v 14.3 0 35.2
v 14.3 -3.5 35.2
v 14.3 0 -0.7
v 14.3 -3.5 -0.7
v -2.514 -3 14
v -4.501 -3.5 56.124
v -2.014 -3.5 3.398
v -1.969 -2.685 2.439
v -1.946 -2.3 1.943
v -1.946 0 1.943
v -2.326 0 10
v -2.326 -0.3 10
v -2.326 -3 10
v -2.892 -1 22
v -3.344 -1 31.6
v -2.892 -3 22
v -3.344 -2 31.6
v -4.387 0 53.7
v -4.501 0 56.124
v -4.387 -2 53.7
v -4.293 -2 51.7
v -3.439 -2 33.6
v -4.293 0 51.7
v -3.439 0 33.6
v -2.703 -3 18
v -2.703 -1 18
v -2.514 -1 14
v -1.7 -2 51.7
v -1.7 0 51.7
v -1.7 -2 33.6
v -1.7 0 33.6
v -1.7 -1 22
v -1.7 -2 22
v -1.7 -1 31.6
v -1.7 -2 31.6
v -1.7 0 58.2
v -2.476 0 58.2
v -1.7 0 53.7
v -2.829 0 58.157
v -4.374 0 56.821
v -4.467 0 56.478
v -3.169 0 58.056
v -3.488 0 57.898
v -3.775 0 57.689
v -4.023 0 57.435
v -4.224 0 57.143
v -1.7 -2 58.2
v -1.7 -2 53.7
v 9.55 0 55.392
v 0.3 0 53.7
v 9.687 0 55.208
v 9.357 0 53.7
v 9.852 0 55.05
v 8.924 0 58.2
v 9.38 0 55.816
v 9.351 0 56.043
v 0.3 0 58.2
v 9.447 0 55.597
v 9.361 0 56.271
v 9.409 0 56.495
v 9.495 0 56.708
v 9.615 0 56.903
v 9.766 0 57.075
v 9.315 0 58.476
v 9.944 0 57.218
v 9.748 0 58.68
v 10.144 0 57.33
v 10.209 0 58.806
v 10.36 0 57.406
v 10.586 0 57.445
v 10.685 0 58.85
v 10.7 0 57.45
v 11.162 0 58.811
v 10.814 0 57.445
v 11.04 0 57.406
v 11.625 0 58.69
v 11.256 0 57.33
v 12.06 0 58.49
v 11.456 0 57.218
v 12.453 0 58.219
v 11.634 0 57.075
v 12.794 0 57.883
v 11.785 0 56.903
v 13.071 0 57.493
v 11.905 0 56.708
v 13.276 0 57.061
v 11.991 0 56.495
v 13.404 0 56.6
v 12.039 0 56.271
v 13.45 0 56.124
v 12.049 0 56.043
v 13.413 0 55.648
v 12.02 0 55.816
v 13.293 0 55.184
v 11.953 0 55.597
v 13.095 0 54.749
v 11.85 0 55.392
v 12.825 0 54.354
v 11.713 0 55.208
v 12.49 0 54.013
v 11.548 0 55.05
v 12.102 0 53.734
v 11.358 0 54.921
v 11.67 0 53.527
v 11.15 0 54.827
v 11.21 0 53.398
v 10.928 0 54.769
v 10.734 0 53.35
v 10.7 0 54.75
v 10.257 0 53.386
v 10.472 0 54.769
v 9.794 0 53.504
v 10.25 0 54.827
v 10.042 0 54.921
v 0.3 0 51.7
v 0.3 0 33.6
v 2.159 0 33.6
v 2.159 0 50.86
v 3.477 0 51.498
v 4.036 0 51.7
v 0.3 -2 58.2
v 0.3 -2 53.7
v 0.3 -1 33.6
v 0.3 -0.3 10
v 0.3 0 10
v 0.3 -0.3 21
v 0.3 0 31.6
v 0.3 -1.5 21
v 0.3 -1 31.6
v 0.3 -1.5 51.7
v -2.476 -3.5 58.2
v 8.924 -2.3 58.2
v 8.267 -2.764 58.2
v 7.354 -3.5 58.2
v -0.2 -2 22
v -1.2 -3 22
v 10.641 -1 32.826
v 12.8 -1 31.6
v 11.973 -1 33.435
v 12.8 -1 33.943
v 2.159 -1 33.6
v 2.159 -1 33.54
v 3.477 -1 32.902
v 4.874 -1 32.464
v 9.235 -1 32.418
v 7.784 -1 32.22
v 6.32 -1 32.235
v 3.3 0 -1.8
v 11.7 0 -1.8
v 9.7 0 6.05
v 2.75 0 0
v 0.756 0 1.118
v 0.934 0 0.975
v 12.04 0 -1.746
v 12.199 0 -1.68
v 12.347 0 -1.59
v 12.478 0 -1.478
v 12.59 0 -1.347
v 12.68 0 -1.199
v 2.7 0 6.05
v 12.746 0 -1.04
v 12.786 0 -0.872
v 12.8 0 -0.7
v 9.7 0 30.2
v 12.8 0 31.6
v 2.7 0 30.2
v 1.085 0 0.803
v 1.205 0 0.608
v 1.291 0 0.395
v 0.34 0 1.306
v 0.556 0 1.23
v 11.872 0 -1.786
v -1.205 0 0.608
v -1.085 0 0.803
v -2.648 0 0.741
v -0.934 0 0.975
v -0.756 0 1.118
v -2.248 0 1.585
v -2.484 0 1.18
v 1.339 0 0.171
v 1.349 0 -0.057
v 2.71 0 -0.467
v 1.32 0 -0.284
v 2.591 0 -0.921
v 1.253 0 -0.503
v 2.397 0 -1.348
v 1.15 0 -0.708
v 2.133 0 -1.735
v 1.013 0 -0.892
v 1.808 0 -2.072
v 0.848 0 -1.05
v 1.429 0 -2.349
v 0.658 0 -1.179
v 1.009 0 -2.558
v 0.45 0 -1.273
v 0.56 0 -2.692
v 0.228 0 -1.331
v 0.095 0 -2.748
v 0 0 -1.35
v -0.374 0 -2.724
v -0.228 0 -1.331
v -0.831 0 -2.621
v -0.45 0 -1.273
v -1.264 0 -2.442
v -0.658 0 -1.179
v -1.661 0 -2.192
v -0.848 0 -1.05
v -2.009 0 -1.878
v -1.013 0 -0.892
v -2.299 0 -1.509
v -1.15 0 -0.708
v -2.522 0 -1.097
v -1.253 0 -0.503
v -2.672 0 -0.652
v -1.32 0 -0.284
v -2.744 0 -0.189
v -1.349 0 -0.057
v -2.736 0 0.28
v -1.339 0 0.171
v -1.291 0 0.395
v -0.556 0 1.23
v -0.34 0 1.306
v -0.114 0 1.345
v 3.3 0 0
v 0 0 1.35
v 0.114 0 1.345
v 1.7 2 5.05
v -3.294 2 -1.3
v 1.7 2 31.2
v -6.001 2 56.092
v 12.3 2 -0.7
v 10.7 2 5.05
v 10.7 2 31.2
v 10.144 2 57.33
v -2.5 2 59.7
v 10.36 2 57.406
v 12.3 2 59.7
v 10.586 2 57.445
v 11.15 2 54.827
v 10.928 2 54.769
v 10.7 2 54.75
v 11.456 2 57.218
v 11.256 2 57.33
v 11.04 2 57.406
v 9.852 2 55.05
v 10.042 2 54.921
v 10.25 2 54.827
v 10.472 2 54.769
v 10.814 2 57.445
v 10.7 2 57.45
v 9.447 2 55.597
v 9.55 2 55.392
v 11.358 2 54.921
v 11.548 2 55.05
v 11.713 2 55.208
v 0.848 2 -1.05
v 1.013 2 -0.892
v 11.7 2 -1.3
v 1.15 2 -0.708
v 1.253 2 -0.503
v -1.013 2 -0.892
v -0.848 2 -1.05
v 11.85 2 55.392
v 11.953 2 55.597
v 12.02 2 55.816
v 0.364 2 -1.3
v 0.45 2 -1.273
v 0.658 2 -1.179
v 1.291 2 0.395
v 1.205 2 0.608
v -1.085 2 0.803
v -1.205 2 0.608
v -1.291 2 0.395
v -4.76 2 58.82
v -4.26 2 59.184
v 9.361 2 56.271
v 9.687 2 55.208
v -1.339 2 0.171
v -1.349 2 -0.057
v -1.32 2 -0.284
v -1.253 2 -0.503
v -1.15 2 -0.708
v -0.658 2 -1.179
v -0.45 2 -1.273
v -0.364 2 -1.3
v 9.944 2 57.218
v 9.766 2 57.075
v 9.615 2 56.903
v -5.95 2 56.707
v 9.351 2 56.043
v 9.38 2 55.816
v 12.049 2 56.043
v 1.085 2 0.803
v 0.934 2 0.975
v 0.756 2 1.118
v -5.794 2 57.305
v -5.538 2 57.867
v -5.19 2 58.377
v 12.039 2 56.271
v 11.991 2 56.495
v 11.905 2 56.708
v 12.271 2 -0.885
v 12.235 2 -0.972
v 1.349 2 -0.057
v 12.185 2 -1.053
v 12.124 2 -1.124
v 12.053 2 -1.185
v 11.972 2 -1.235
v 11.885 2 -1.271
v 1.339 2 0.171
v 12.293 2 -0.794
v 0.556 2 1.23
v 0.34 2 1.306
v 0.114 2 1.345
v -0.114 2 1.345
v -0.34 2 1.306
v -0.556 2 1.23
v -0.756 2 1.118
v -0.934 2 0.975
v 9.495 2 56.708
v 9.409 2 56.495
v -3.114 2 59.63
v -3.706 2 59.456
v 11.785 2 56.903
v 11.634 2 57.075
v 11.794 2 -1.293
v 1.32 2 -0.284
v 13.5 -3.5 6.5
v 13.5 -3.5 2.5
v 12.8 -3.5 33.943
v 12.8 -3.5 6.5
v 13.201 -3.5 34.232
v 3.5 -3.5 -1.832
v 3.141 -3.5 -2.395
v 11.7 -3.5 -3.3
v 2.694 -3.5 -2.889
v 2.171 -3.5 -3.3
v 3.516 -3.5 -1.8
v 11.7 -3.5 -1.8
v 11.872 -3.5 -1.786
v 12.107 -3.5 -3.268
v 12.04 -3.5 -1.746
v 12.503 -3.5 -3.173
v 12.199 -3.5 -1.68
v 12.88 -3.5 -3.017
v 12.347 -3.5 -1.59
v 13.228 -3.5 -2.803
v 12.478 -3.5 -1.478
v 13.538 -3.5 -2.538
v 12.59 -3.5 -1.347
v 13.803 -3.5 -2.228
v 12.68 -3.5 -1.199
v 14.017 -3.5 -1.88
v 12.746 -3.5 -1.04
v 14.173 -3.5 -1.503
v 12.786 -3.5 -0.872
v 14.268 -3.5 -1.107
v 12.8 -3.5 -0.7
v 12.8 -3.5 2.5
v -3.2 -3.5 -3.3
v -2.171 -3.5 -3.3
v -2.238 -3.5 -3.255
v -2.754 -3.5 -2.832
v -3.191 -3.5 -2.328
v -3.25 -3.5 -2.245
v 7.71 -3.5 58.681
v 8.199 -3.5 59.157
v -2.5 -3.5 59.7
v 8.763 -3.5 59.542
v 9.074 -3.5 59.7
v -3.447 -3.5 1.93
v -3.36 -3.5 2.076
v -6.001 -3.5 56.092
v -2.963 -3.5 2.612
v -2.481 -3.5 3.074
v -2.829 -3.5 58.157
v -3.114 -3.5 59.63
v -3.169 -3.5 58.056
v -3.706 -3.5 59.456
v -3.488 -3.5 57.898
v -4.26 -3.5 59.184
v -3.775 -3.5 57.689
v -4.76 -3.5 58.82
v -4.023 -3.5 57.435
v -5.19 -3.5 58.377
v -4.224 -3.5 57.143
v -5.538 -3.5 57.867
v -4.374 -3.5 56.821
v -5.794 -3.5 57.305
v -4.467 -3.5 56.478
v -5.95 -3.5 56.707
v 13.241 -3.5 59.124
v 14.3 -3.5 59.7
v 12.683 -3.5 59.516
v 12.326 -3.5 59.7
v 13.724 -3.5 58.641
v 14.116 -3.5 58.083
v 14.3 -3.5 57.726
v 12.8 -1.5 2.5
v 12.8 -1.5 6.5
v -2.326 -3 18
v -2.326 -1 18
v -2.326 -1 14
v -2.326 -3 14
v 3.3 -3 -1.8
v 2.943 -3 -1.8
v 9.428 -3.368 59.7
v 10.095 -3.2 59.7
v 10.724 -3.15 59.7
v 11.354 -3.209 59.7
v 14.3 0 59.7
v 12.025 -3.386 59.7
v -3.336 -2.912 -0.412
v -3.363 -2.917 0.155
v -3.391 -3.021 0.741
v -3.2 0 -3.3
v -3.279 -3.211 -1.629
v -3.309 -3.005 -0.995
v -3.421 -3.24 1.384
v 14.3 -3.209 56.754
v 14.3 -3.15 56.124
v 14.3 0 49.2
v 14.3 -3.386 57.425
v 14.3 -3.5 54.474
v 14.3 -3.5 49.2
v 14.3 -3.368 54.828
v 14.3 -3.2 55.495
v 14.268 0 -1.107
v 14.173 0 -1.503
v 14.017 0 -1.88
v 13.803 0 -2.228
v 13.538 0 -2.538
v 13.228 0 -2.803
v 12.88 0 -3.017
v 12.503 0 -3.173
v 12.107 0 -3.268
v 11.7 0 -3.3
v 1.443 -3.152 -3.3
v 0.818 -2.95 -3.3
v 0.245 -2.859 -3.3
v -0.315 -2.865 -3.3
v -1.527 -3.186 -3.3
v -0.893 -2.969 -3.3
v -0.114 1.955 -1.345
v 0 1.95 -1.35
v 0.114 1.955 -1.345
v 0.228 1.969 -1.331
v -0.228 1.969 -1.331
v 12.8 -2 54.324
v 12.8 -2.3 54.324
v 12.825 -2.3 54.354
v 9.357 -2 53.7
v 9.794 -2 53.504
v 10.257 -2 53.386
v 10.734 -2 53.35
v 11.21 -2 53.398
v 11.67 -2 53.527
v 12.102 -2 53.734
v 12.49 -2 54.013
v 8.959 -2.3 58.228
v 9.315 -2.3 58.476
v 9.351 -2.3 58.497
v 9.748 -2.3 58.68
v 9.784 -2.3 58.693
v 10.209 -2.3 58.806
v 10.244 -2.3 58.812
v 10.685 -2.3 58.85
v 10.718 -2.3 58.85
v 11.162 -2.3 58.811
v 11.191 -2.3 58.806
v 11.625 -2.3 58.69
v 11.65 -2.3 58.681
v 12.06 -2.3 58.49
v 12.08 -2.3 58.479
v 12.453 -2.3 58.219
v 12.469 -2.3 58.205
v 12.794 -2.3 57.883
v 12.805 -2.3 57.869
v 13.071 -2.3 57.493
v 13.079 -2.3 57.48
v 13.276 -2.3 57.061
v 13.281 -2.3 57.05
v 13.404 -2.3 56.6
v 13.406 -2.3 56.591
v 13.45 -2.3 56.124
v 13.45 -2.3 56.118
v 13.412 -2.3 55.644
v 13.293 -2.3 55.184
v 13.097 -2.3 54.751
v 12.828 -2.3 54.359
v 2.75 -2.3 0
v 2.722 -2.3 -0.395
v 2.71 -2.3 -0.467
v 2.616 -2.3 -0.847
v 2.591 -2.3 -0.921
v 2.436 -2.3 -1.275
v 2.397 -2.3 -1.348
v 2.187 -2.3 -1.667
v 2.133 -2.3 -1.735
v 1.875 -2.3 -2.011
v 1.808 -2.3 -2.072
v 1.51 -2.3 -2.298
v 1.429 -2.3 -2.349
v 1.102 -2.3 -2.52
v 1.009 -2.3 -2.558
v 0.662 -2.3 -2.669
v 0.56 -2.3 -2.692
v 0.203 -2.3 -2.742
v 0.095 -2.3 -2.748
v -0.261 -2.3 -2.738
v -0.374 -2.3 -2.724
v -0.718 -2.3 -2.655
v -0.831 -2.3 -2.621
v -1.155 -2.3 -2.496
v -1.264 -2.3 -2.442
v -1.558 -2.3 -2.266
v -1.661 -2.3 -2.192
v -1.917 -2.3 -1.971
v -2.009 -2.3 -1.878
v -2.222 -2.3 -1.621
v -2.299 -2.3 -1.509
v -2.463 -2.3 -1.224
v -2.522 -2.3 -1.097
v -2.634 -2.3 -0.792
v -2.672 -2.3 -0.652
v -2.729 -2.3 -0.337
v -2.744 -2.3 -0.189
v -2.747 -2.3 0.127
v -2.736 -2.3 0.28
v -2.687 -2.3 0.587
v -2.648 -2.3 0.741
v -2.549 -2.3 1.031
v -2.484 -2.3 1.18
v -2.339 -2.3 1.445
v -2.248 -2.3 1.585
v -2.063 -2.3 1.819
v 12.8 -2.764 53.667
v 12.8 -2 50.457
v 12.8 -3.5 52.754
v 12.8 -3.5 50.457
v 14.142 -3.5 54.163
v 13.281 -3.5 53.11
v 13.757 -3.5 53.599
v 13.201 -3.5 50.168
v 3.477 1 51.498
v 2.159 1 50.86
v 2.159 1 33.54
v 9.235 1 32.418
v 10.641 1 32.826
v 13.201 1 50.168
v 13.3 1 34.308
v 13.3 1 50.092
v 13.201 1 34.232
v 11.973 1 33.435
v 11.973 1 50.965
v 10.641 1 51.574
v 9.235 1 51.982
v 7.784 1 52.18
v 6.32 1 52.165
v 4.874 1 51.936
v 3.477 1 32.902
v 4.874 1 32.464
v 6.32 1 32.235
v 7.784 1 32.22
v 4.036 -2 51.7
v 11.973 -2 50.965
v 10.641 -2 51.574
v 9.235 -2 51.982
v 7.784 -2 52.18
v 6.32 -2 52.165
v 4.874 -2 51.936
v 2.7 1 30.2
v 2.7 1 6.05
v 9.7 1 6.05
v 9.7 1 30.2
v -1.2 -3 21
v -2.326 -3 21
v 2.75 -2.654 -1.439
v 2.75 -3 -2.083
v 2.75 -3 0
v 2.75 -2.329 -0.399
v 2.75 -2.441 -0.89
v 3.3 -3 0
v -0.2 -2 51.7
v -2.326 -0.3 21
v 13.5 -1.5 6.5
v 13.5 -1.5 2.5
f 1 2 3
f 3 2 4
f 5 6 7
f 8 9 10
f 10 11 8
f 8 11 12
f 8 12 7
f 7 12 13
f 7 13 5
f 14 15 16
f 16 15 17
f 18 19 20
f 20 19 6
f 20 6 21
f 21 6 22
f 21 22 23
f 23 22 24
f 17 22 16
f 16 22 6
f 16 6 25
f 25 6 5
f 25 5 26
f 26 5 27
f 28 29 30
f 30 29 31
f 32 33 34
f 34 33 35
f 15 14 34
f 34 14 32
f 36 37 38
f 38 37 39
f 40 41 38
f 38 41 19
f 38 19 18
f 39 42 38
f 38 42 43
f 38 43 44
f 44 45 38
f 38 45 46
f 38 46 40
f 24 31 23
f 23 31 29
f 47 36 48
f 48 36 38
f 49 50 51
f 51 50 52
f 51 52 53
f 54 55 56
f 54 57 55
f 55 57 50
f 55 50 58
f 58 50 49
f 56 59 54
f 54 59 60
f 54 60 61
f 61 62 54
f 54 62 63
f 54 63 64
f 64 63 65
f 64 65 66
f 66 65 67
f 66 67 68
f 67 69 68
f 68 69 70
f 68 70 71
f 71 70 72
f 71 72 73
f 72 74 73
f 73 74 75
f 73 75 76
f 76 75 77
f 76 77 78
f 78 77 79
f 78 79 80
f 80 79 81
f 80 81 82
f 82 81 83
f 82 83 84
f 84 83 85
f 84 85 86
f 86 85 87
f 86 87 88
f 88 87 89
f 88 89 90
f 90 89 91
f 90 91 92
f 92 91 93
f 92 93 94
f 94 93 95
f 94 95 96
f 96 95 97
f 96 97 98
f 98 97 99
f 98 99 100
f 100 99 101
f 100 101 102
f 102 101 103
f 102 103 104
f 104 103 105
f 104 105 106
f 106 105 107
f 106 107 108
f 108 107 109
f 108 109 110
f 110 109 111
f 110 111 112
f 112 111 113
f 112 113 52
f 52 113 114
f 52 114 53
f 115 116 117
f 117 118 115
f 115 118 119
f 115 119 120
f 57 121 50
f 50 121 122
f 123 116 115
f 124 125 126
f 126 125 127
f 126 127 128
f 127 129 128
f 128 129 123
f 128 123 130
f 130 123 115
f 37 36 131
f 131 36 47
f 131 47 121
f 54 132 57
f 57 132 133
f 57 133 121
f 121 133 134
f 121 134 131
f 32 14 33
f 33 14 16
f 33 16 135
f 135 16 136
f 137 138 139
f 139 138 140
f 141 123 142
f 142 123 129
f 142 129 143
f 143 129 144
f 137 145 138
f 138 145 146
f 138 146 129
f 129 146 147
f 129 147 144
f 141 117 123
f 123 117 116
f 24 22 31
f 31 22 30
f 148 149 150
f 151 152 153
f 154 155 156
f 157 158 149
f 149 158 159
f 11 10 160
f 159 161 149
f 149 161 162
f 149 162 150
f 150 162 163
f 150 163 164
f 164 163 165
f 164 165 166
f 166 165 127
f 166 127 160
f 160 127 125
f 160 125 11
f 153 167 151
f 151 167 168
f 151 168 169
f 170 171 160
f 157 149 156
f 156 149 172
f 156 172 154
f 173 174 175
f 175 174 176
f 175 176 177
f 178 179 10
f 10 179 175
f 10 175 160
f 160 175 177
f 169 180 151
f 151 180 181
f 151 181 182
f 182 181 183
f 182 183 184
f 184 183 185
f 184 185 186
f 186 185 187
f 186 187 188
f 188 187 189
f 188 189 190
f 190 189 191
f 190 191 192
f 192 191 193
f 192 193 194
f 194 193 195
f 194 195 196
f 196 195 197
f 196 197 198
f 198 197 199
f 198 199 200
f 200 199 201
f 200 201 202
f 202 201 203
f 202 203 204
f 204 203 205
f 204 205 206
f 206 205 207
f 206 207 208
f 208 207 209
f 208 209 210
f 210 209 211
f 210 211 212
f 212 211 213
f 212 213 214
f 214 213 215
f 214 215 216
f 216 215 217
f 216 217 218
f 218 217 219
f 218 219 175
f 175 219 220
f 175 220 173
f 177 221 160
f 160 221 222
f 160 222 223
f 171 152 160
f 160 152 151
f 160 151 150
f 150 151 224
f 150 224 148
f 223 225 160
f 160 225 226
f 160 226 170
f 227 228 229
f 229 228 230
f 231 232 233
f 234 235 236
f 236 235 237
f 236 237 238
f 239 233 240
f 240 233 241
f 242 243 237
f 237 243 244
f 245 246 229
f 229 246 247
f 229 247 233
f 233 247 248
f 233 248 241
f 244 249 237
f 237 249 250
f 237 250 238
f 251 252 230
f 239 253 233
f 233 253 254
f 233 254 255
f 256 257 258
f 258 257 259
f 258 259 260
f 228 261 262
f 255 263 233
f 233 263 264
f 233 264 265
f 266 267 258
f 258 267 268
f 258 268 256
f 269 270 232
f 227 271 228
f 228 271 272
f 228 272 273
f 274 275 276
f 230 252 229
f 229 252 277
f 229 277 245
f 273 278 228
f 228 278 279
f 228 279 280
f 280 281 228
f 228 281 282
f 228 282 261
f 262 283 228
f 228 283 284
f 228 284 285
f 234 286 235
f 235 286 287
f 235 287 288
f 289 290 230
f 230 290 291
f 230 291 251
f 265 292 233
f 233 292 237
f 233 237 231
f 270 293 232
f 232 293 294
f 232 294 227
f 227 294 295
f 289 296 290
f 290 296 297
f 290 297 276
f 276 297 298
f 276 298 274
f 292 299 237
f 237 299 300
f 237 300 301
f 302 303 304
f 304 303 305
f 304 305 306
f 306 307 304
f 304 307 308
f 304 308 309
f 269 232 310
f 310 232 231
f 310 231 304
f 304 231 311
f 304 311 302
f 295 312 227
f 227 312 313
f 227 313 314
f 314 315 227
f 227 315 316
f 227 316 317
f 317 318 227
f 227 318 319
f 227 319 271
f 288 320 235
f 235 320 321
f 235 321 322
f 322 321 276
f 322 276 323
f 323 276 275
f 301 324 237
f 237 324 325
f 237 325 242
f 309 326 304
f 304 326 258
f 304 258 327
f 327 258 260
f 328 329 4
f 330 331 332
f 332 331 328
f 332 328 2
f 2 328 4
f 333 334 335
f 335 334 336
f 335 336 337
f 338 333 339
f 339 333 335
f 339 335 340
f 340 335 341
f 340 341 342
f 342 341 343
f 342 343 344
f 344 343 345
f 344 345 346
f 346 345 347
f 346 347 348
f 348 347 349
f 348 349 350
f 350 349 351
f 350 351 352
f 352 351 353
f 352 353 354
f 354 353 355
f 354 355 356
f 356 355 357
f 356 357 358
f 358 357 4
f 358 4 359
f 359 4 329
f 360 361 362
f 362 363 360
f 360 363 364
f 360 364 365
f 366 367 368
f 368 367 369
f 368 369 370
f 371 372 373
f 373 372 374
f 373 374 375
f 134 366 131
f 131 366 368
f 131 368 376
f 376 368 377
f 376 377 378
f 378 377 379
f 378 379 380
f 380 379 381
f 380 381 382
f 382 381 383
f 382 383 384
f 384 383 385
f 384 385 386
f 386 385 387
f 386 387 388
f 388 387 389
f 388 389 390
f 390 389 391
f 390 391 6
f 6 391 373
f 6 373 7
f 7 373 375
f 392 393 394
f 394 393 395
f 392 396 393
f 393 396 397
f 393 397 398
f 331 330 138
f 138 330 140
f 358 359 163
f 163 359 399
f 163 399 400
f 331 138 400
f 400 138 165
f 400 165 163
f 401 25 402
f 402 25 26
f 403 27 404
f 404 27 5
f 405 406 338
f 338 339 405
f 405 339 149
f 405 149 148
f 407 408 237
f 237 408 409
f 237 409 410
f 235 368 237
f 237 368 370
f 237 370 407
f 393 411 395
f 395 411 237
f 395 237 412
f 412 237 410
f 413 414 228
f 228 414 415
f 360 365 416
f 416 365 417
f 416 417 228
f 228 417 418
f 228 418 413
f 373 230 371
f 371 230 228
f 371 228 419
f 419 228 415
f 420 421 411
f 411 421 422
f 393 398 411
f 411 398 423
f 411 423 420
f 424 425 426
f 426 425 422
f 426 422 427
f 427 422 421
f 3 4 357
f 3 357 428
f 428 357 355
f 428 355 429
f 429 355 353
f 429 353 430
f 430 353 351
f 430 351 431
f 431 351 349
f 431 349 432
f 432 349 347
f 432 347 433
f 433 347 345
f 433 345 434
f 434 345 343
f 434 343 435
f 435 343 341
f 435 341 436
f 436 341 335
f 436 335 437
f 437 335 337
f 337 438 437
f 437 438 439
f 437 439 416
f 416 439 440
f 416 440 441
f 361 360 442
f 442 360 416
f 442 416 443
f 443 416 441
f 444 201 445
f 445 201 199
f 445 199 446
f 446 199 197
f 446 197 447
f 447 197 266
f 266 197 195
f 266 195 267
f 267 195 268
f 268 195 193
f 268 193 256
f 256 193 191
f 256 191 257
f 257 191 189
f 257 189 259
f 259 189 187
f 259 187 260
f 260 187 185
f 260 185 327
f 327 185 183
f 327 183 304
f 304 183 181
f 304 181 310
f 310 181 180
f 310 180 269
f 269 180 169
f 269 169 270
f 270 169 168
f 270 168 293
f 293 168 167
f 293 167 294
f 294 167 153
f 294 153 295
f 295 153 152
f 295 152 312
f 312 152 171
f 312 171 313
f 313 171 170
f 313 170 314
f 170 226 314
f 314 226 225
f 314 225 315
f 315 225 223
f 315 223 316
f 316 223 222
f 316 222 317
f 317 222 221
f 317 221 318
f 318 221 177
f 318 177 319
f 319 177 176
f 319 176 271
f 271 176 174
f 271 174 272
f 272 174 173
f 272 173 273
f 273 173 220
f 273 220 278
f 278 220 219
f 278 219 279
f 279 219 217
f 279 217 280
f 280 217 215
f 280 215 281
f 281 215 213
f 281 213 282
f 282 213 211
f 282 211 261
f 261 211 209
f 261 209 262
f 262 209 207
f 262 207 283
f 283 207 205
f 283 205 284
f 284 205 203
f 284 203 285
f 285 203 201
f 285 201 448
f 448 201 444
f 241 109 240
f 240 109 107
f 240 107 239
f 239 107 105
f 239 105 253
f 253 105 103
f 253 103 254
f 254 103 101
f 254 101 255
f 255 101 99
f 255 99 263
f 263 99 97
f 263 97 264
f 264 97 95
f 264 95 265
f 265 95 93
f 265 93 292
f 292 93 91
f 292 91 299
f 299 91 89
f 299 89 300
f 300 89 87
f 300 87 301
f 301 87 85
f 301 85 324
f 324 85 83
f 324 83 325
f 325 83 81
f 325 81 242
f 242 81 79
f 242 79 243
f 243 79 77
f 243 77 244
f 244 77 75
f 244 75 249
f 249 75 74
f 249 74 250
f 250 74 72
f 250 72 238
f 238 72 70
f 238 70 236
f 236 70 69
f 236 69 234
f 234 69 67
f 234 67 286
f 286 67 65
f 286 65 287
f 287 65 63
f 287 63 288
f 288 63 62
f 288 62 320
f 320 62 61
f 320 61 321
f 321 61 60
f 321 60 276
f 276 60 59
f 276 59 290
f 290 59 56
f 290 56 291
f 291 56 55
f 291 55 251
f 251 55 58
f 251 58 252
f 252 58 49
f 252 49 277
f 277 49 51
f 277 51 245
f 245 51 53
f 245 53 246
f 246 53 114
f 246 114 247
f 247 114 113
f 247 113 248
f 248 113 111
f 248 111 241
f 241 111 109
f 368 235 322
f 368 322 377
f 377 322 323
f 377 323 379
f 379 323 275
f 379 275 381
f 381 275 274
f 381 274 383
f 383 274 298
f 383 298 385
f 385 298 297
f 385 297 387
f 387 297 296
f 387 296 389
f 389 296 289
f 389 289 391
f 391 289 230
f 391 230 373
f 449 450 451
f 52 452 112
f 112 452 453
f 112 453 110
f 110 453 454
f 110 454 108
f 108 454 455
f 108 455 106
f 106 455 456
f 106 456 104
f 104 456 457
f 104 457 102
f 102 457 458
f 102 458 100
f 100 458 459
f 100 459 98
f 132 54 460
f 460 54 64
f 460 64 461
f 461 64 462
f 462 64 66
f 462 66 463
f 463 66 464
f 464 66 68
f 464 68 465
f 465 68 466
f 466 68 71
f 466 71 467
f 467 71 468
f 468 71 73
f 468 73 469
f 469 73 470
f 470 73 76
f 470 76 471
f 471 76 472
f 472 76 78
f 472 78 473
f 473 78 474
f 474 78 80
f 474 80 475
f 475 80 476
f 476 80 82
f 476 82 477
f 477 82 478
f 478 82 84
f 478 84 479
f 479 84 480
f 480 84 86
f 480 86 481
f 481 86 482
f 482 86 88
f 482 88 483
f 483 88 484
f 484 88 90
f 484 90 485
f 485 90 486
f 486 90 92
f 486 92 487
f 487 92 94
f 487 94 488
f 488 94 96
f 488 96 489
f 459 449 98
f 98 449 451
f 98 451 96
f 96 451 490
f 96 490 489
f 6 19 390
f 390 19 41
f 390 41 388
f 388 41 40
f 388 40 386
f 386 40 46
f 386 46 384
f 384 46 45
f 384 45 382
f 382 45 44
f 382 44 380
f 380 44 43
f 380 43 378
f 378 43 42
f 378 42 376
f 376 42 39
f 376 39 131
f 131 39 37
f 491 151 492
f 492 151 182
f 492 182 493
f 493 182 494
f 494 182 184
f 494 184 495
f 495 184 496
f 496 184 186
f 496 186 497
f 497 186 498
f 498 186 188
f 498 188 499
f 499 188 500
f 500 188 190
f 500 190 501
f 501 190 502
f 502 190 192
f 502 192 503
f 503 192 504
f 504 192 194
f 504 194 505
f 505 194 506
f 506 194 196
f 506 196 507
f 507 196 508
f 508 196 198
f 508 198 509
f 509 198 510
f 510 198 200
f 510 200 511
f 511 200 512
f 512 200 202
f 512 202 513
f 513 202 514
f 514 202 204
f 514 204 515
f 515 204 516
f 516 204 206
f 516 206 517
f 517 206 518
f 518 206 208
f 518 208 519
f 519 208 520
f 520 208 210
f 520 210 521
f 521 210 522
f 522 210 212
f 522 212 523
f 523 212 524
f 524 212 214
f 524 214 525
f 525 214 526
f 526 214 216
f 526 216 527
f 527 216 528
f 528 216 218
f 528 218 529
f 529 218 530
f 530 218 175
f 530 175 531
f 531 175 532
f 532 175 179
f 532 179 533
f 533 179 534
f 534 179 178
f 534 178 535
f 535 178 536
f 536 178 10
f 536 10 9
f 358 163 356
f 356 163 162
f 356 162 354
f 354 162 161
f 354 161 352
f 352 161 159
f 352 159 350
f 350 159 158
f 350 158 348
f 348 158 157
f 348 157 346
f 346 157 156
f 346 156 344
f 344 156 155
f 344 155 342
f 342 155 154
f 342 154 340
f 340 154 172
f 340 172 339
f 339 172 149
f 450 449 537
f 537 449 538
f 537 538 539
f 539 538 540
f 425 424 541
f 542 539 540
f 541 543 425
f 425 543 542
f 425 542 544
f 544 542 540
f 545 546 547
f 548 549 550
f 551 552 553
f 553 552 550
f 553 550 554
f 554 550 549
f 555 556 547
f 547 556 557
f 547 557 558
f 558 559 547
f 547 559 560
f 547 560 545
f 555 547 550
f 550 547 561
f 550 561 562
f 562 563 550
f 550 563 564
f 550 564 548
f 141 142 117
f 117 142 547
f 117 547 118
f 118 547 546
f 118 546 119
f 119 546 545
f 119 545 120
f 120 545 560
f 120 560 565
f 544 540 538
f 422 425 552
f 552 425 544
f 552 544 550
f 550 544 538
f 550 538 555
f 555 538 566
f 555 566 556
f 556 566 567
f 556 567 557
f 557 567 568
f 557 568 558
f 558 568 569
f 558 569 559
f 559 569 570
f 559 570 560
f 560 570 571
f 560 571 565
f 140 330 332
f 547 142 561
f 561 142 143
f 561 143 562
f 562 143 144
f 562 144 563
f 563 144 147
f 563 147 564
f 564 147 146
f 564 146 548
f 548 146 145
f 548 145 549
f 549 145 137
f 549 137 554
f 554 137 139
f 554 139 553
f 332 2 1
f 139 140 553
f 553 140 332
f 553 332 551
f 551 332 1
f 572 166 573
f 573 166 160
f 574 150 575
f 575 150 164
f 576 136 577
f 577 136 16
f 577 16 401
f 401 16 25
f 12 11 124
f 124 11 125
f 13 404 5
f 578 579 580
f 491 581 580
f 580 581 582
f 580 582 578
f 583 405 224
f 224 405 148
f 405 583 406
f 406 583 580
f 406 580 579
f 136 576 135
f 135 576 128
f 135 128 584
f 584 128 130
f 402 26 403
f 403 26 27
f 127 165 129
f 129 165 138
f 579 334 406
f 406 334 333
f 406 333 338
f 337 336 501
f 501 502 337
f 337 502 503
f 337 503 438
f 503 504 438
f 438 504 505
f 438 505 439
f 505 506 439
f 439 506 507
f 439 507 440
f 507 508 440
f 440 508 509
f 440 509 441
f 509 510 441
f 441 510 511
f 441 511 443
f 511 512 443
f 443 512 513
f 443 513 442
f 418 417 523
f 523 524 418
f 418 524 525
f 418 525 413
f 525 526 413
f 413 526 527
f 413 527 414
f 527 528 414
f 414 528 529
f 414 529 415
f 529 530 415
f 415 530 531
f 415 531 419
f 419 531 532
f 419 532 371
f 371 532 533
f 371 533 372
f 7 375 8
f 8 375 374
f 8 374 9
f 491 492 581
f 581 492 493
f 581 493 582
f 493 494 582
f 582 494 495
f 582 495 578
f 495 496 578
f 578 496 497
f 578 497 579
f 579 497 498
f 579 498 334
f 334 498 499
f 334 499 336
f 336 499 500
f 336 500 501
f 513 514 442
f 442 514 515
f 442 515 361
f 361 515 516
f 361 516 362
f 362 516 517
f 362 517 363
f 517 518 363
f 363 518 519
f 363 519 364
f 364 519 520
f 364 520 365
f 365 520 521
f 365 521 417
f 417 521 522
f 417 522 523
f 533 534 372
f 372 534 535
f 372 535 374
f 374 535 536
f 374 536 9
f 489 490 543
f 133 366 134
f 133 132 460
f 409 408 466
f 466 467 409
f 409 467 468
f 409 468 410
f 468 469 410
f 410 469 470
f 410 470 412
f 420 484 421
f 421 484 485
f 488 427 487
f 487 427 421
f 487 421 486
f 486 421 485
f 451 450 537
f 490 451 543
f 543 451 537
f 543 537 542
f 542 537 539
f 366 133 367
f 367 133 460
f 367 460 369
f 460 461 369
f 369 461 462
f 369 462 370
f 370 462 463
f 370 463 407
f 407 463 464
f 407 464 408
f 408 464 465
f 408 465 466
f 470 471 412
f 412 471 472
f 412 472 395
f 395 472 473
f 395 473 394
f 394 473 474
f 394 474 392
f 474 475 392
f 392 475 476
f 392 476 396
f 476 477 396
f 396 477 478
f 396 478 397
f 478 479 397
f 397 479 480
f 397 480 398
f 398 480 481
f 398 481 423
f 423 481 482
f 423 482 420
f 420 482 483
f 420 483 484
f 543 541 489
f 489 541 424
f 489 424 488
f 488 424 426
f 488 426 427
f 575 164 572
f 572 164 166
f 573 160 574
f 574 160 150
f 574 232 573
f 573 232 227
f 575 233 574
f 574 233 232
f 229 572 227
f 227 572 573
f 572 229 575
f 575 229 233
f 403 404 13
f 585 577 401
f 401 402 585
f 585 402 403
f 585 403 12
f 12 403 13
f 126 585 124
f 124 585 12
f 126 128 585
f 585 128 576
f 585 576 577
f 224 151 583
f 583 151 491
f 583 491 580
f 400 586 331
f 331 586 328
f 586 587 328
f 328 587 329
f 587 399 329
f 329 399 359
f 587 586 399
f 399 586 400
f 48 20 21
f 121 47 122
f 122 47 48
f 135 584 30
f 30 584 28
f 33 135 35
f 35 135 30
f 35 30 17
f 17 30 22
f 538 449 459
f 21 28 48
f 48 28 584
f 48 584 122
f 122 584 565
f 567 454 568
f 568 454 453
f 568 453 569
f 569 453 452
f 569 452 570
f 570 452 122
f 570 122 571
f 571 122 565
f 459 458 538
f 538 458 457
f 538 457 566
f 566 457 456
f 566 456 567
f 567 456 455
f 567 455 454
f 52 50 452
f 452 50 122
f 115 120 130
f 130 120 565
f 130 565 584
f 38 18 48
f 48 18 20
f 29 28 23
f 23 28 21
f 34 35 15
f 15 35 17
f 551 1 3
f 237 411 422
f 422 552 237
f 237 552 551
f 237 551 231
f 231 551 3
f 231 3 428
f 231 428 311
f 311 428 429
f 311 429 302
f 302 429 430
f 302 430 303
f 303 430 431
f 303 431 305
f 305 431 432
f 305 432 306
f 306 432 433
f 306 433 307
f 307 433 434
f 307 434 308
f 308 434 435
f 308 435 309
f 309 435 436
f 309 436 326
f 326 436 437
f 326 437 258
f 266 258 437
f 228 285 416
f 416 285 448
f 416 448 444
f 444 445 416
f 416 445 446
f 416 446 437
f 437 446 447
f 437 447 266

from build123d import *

# Parameters (mm, degrees)
SKETCH_1_R                      = 1.35
EXTRUDE_1_DEPTH                 = 2
EXTRUDE_2_DEPTH                 = 2
CUT_EXTRUDE_1_DEPTH             = 62.421331799
CUT_EXTRUDE_1_DEPTH_BACK        = 62.421331799
EXTRUDE_START                   = 3.5
EXTRUDE_3_DEPTH                 = 3.5
SKETCH_5_W                      = 14
SKETCH_5_H                      = 4.5
CUT_EXTRUDE_2_DEPTH             = 9
CUT_EXTRUDE_3_REACH             = 63.635
SKETCH_7_W                      = 7
SKETCH_7_H                      = 24
CUT_EXTRUDE_4_DEPTH             = 62.488454201
EXTRUDE_4_DEPTH                 = 3
EXTRUDE_START_2                 = 3
EXTRUDE_5_DEPTH                 = 3
CHAMFER_2_SIZE                  = 1.5
EXTRUDE_6_DEPTH                 = 1
EXTRUDE_START_3                 = 1
EXTRUDE_7_DEPTH                 = 1
CHAMFER_3_SIZE                  = 1.2
CUT_EXTRUDE_6_REACH             = 63.635
SKETCH_13_W                     = 7
SKETCH_13_H                     = 0.9
CUT_EXTRUDE_6_DIRECTION_2_DEPTH = 62.634649346
SKETCH_14_W                     = 7
SKETCH_14_H                     = 0.75
EXTRUDE_8_DEPTH                 = 2
CHAMFER_1_SIZE                  = 1
SKETCH_15_W                     = 2.625664416
SKETCH_15_H                     = 11
CUT_EXTRUDE_7_DEPTH             = 2.7
CUT_EXTRUDE_START               = -3
SKETCH_16_W                     = 0.55
SKETCH_16_H                     = 2.6
CUT_EXTRUDE_8_DEPTH             = 3
SKETCH_17_W                     = 0.7
SKETCH_17_H                     = 4
CUT_EXTRUDE_9_DEPTH             = 2
SKETCH_18_W                     = 2
SKETCH_18_H                     = 36.2
EXTRUDE_9_DEPTH                 = 2
EXTRUDE_START_4                 = 2
EXTRUDE_10_DEPTH                = 2
SKETCH_20_W                     = 4.68689843
SKETCH_20_H                     = 2
EXTRUDE_11_DEPTH                = 2
SKETCH_21_W                     = 1.738825119
SKETCH_21_H                     = 2
EXTRUDE_12_DEPTH                = 1
CUT_EXTRUDE_10_DEPTH            = 29.7
CHAMFER_4_SIZE                  = 2


with BuildPart() as part:
    # 草图1 → 凸台-拉伸1 (new body)
    with BuildSketch(Plane(origin=(0, 0, 0), x_dir=(1, 0, 0), z_dir=(0, 1, 0))):
        with BuildLine():
            Line((0, 3.3), (11.7, 3.3))
            ThreePointArc((11.7, 3.3), (13.538477631, 2.538477631), (14.3, 0.7))
            Line((14.3, 0.7), (14.3, -59.7))
            Line((14.3, -59.7), (-3.3, -59.7))
            Line((-3.3, -59.7), (-3.3, 0))
            Line((-3.3, 0), (-3.3, 3.3))
            Line((-3.3, 3.3), (0, 3.3))
        make_face()
        with Locations(Location((0, 0, 0), (0, 0, 270))):
            Circle(SKETCH_1_R, mode=Mode.SUBTRACT)
        with Locations(Location((10.7, -56.1, 0), (0, 0, 270))):
            Circle(SKETCH_1_R, mode=Mode.SUBTRACT)
    extrude(amount=EXTRUDE_1_DEPTH)

    # 草图2 → 凸台-拉伸2 (add)
    with BuildSketch(Plane(origin=(0, 2, 0), x_dir=(1, 0, 0), z_dir=(0, 1, 0))):
        Polygon((-3.3, 1.179910787), (-6.171573065, -59.7), (-3.3, -59.7), align=None)
    extrude(amount=-EXTRUDE_2_DEPTH)

    # 草图3 → 切除-拉伸1 (cut, two sides: drawn at the far end of the back side and taken through both)
    with BuildSketch(Plane(origin=(0, 2, 0), x_dir=(1, 0, 0), z_dir=(0, 1, 0)).offset(-CUT_EXTRUDE_1_DEPTH_BACK)):
        Polygon((-3.3, 3.3), (-3.3, 1.179910787), (-3.2, 3.3), align=None)
        with BuildLine():
            ThreePointArc((-2.499988961, -59.7), (-4.984483511, -58.608076588), (-6.001389, -56.091946))
            Line((-6.001389, -56.091946), (-6.171573065, -59.7))
            Line((-6.171573065, -59.7), (-2.499988961, -59.7))
        make_face()
    extrude(amount=CUT_EXTRUDE_1_DEPTH + CUT_EXTRUDE_1_DEPTH_BACK, mode=Mode.SUBTRACT)

    # 草图4 → 凸台-拉伸3 (add)
    with BuildSketch(Plane.XZ.offset(EXTRUDE_START)):
        with BuildLine():
            Line((-6.001389, 56.091946), (-3.2, -3.3))
            Line((-3.2, -3.3), (11.7, -3.3))
            ThreePointArc((11.7, -3.3), (13.538477631, -2.538477631), (14.3, -0.7))
            Line((14.3, -0.7), (14.3, 59.7))
            Line((14.3, 59.7), (-2.499988961, 59.7))
            ThreePointArc((-2.499988961, 59.7), (-4.984483511, 58.608076588), (-6.001389, 56.091946))
        make_face()
        with BuildLine():
            Line((12.8, -0.7), (12.8, 54.32447191))
            ThreePointArc((12.8, 54.32447191), (12.644543648, 58.044543648), (8.92447191, 58.2))
            Line((8.92447191, 58.2), (-2.476371899, 58.2))
            ThreePointArc((-2.476371899, 58.2), (-3.904150356, 57.567435732), (-4.501255338, 56.124468472))
            Line((-4.501255338, 56.124468472), (-1.945653662, 1.943433001))
            ThreePointArc((-1.945653662, 1.943433001), (-1.872904729, -2.013635488), (2.079062289, -1.8))
            Line((2.079062289, -1.8), (11.7, -1.8))
            ThreePointArc((11.7, -1.8), (12.477817459, -1.477817459), (12.8, -0.7))
        make_face(mode=Mode.SUBTRACT)
    extrude(amount=-EXTRUDE_3_DEPTH)

    # 草图5 → 切除-拉伸2 (cut)
    with BuildSketch(Plane(origin=(14.3, 0, 0), x_dir=(0, 0, -1), z_dir=(1, 0, 0))):
        with Locations((-42.2, -1.25)):
            Rectangle(SKETCH_5_W, SKETCH_5_H)
    extrude(amount=-CUT_EXTRUDE_2_DEPTH, mode=Mode.SUBTRACT)

    # 切除-拉伸3: up to this face of the body (flat: up to its plane)
    cut_extrude_3_end = Plane(part.part.faces().sort_by_distance((9.8, 1, 42.2))[0])
    # 草图6 → 切除-拉伸3 (cut, up to the picked face)
    with BuildSketch(Plane.XZ.offset(3.5), mode=Mode.PRIVATE) as cut_extrude_3_sk1:
        with BuildLine():
            Line((2.158571571, 33.539745962), (2.158571571, 50.860254038))
            ThreePointArc((2.158571571, 50.860254038), (17.158571571, 42.2), (2.158571571, 33.539745962))
        make_face()
    cut_extrude_3_tool1 = split(extrude(cut_extrude_3_sk1.sketch, amount=-CUT_EXTRUDE_3_REACH, mode=Mode.PRIVATE), bisect_by=cut_extrude_3_end, keep=Keep.BOTH, mode=Mode.PRIVATE)
    add(cut_extrude_3_tool1.solids().sort_by(Axis((8.87184, -3.5, 42.2), (0, 1, 0)))[0], mode=Mode.SUBTRACT)

    # 草图7 → 切除-拉伸4 (cut, through all)
    with BuildSketch(Plane.XZ):
        with Locations((6.2, 17.3)):
            Rectangle(SKETCH_7_W, SKETCH_7_H)
    extrude(amount=-CUT_EXTRUDE_4_DEPTH, mode=Mode.SUBTRACT)

    # 草图8 → 凸台-拉伸4 (add)
    with BuildSketch(Plane.XZ):
        Polygon((-2.891678333, 22), (0.3, 22), (0.3, 18), (-2.703007027, 18), align=None)
        Polygon((-2.514335721, 14), (0.3, 14), (0.3, 10), (-2.325664416, 10), align=None)
    extrude(amount=EXTRUDE_4_DEPTH)

    # 草图9 → 凸台-拉伸5 (add)
    with BuildSketch(Plane.XZ.offset(EXTRUDE_START_2)):
        with BuildLine():
            Line((2.75, 0), (2.75, 2.6))
            Line((2.75, 2.6), (3.3, 2.6))
            Line((3.3, 2.6), (3.3, -1.8))
            Line((3.3, -1.8), (2.079062289, -1.8))
            ThreePointArc((2.079062289, -1.8), (2.576812109, -0.960489122), (2.75, 0))
        make_face()
    extrude(amount=-EXTRUDE_5_DEPTH)

    # 倒角2
    chamfer_2_edges = [part.edges().sort_by_distance(p)[0] for p in [
        (0.3, -3, 20),
        (0.3, -3, 12),
        (3.025, -3, 2.6),
    ]]
    chamfer(chamfer_2_edges, length=CHAMFER_2_SIZE)

    # 草图10 → 凸台-拉伸6 (add)
    with BuildSketch(Plane.XZ):
        Polygon((0.3, 22), (0.3, 31.6), (-3.344489466, 31.6), (-2.891678333, 22), align=None)
        Polygon((0.3, 18), (0.3, 14), (-2.514335721, 14), (-2.703007027, 18), align=None)
    extrude(amount=EXTRUDE_6_DEPTH)

    # 草图11 → 凸台-拉伸7 (add)
    with BuildSketch(Plane.XZ.offset(EXTRUDE_START_3)):
        with BuildLine():
            Line((0.3, 31.6), (12.8, 31.6))
            Line((12.8, 31.6), (12.8, 33.943227914))
            ThreePointArc((12.8, 33.943227914), (7.537460775, 32.207180429), (2.158571571, 33.539745962))
            Line((2.158571571, 33.539745962), (2.158571571, 33.6))
            Line((2.158571571, 33.6), (-3.438825119, 33.6))
            Line((-3.438825119, 33.6), (-3.344489466, 31.6))
            Line((-3.344489466, 31.6), (0.3, 31.6))
        make_face()
    extrude(amount=-EXTRUDE_7_DEPTH)

    # 倒角3
    # the kernel refuses this chamfer: 1.2 mm, written as the material it takes off along each edge
    with BuildSketch(Plane(origin=(10.7, -3.5, 56.1), x_dir=(-0.25212926598993896, 0, -0.9676935637025672), z_dir=(-0.9676935637025672, 0, 0.25212926598993896))) as chamfer_3_piece_1:
        Polygon((2.75, -CHAMFER_3_SIZE), (2.75 + CHAMFER_3_SIZE, 0), (2.75, 0), align=None)
    revolve(axis=Axis((10.7, -3.5, 56.1), (0, -1, 0)), revolution_arc=299.20709405, mode=Mode.SUBTRACT)
    with BuildSketch(Plane(origin=(0, -3.5, 0), x_dir=(0.3317021922572173, 0, 0.9433841506256908), z_dir=(0.9433841506256908, 0, -0.3317021922572173))) as chamfer_3_piece_2_section:
        Polygon((2.75, -CHAMFER_3_SIZE), (2.75 + CHAMFER_3_SIZE, 0), (2.75, 0), align=None)
    chamfer_3_piece_2 = revolve(axis=Axis((0, -3.5, 0), (0, -1, 0)), revolution_arc=312.891771357, mode=Mode.PRIVATE)
    chamfer_3_piece_2 = split(chamfer_3_piece_2, bisect_by=Plane(origin=(2.75, -2.813189382, 1.829031727), z_dir=(-1, 0, 0)), keep=Keep.TOP, mode=Mode.PRIVATE)
    add(chamfer_3_piece_2, mode=Mode.SUBTRACT)
    with BuildSketch(Plane(origin=(0, -3.5, 0), x_dir=(0.3317021922572173, 0, 0.9433841506256908), z_dir=(0.9433841506256908, 0, -0.3317021922572173))) as chamfer_3_piece_3_section:
        Polygon((2.75, -CHAMFER_3_SIZE), (2.75 + CHAMFER_3_SIZE, 0), (2.75, 0), align=None)
    chamfer_3_piece_3 = revolve(axis=Axis((0, -3.5, 0), (0, -1, 0)), revolution_arc=312.891771357, mode=Mode.PRIVATE)
    chamfer_3_piece_3 = split(chamfer_3_piece_3, bisect_by=Plane(origin=(2.94239335, -3, -2.084958932), z_dir=(0, -1, 0)), keep=Keep.TOP, mode=Mode.PRIVATE)
    add(chamfer_3_piece_3, mode=Mode.SUBTRACT)

    # 草图13 → 切除-拉伸6 (cut, up to next)
    with BuildSketch(Plane(origin=(0, 2, 0), x_dir=(1, 0, 0), z_dir=(0, 1, 0)), mode=Mode.PRIVATE) as cut_extrude_6_sk1:
        with Locations((6.2, -29.75)):
            Rectangle(SKETCH_13_W, SKETCH_13_H)
    cut_extrude_6_tool1 = extrude(cut_extrude_6_sk1.sketch, amount=-CUT_EXTRUDE_6_REACH, mode=Mode.PRIVATE) & part.part
    add(cut_extrude_6_tool1.solids().sort_by_distance((6.2, 2, 29.75))[0], mode=Mode.SUBTRACT)

    # 草图13 → 切除-拉伸6 direction 2 (cut)
    with BuildSketch(Plane(origin=(0, 2, 0), x_dir=(1, 0, 0), z_dir=(0, 1, 0))):
        with Locations((6.2, -29.75)):
            Rectangle(SKETCH_13_W, SKETCH_13_H)
    extrude(amount=CUT_EXTRUDE_6_DIRECTION_2_DEPTH, mode=Mode.SUBTRACT)

    # 草图14 → 凸台-拉伸8 (add)
    with BuildSketch(Plane(origin=(0, 2, 0), x_dir=(1, 0, 0), z_dir=(0, 1, 0))):
        with Locations((6.2, -5.675)):
            Rectangle(SKETCH_14_W, SKETCH_14_H)
    extrude(amount=-EXTRUDE_8_DEPTH)

    # 倒角1
    chamfer_1_edges = [part.edges().sort_by_distance(p)[0] for p in [
        (2.7, 2, 18.125),
        (6.2, 2, 30.2),
        (9.7, 2, 18.125),
        (6.2, 2, 6.05),
    ]]
    chamfer(chamfer_1_edges, length=CHAMFER_1_SIZE)

    # 草图15 → 切除-拉伸7 (cut)
    with BuildSketch(Plane.XZ.offset(3)):
        with Locations((-1.012832208, 15.5)):
            Rectangle(SKETCH_15_W, SKETCH_15_H)
    extrude(amount=-CUT_EXTRUDE_7_DEPTH, mode=Mode.SUBTRACT)

    # 草图16 → 切除-拉伸8 (cut)
    with BuildSketch(Plane.XZ.offset(3).offset(CUT_EXTRUDE_START)):
        with Locations((3.025, 1.3)):
            Rectangle(SKETCH_16_W, SKETCH_16_H)
    extrude(amount=CUT_EXTRUDE_8_DEPTH, mode=Mode.SUBTRACT)

    # 草图17 → 切除-拉伸9 (cut)
    with BuildSketch(Plane.XZ.offset(3.5)):
        with Locations((13.15, 4.5)):
            Rectangle(SKETCH_17_W, SKETCH_17_H)
    extrude(amount=-CUT_EXTRUDE_9_DEPTH, mode=Mode.SUBTRACT)

    # 草图18 → 凸台-拉伸9 (add)
    with BuildSketch(Plane.XZ):
        with Locations((-0.7, 40.1)):
            Rectangle(SKETCH_18_W, SKETCH_18_H)
    extrude(amount=EXTRUDE_9_DEPTH)

    # 草图19 → 凸台-拉伸10 (add)
    with BuildSketch(Plane.XZ.offset(EXTRUDE_START_4)):
        with BuildLine():
            Line((9.357427842, 53.7), (0.3, 53.7))
            Line((0.3, 53.7), (0.3, 51.7))
            Line((0.3, 51.7), (4.036072572, 51.7))
            ThreePointArc((4.036072572, 51.7), (8.563084042, 52.100875957), (12.8, 50.456772086))
            Line((12.8, 50.456772086), (12.8, 54.32447191))
            ThreePointArc((12.8, 54.32447191), (11.190831463, 53.394157345), (9.357427842, 53.7))
        make_face()
    extrude(amount=-EXTRUDE_10_DEPTH)

    # 草图20 → 凸台-拉伸11 (add)
    with BuildSketch(Plane.XZ):
        with Locations((-2.043449215, 52.7)):
            Rectangle(SKETCH_20_W, SKETCH_20_H)
    extrude(amount=EXTRUDE_11_DEPTH)

    # 草图21 → 凸台-拉伸12 (add)
    with BuildSketch(Plane.XZ.offset(1)):
        with Locations((-2.569412559, 32.6)):
            Rectangle(SKETCH_21_W, SKETCH_21_H)
    extrude(amount=EXTRUDE_12_DEPTH)

    # 草图22 → 切除-拉伸10 (cut)
    with BuildSketch(Plane(origin=(0, 0, 22), x_dir=(-1, 0, 0), z_dir=(0, 0, -1))):
        Polygon((0.2, -2), (-0.3, -1.5), (-0.3, -2), align=None)
    extrude(amount=-CUT_EXTRUDE_10_DEPTH, mode=Mode.SUBTRACT)

    # 倒角4
    # the kernel refuses this chamfer: 2 mm, written as the material it takes off along each edge
    with BuildSketch(Plane(origin=(-8.343365976, 2, -3.3), x_dir=(0, 0.02749587661058627, 0.9996219169112968), z_dir=(1, 0, 0))) as chamfer_4_piece_1:
        Polygon((CHAMFER_4_SIZE * 0.999621916911, CHAMFER_4_SIZE * 0.0274958766106), (-CHAMFER_4_SIZE * 0.0274958766106, CHAMFER_4_SIZE * 0.999621916911), (0, 0), align=None)
    extrude(amount=20.043365976, mode=Mode.SUBTRACT)
    with BuildSketch(Plane(origin=(11.7, 2, -0.7), x_dir=(0, 0, -1), z_dir=(-1, 0, 0))) as chamfer_4_piece_2:
        Polygon((2.6 - CHAMFER_4_SIZE, 0), (2.6, CHAMFER_4_SIZE), (2.6, 0), align=None)
    revolve(axis=Axis((11.7, 2, -0.7), (0, -1, 0)), revolution_arc=90, mode=Mode.SUBTRACT)
    with BuildSketch(Plane(origin=(14.3, 2, -0.7), x_dir=(-0.9996219169112968, 0.02749587661058627, 0), z_dir=(0, 0, 1))) as chamfer_4_piece_3:
        Polygon((CHAMFER_4_SIZE * 0.999621916911, CHAMFER_4_SIZE * 0.0274958766106), (-CHAMFER_4_SIZE * 0.0274958766106, CHAMFER_4_SIZE * 0.999621916911), (0, 0), align=None)
    extrude(amount=65.543365976, mode=Mode.SUBTRACT)


solid = part.part
